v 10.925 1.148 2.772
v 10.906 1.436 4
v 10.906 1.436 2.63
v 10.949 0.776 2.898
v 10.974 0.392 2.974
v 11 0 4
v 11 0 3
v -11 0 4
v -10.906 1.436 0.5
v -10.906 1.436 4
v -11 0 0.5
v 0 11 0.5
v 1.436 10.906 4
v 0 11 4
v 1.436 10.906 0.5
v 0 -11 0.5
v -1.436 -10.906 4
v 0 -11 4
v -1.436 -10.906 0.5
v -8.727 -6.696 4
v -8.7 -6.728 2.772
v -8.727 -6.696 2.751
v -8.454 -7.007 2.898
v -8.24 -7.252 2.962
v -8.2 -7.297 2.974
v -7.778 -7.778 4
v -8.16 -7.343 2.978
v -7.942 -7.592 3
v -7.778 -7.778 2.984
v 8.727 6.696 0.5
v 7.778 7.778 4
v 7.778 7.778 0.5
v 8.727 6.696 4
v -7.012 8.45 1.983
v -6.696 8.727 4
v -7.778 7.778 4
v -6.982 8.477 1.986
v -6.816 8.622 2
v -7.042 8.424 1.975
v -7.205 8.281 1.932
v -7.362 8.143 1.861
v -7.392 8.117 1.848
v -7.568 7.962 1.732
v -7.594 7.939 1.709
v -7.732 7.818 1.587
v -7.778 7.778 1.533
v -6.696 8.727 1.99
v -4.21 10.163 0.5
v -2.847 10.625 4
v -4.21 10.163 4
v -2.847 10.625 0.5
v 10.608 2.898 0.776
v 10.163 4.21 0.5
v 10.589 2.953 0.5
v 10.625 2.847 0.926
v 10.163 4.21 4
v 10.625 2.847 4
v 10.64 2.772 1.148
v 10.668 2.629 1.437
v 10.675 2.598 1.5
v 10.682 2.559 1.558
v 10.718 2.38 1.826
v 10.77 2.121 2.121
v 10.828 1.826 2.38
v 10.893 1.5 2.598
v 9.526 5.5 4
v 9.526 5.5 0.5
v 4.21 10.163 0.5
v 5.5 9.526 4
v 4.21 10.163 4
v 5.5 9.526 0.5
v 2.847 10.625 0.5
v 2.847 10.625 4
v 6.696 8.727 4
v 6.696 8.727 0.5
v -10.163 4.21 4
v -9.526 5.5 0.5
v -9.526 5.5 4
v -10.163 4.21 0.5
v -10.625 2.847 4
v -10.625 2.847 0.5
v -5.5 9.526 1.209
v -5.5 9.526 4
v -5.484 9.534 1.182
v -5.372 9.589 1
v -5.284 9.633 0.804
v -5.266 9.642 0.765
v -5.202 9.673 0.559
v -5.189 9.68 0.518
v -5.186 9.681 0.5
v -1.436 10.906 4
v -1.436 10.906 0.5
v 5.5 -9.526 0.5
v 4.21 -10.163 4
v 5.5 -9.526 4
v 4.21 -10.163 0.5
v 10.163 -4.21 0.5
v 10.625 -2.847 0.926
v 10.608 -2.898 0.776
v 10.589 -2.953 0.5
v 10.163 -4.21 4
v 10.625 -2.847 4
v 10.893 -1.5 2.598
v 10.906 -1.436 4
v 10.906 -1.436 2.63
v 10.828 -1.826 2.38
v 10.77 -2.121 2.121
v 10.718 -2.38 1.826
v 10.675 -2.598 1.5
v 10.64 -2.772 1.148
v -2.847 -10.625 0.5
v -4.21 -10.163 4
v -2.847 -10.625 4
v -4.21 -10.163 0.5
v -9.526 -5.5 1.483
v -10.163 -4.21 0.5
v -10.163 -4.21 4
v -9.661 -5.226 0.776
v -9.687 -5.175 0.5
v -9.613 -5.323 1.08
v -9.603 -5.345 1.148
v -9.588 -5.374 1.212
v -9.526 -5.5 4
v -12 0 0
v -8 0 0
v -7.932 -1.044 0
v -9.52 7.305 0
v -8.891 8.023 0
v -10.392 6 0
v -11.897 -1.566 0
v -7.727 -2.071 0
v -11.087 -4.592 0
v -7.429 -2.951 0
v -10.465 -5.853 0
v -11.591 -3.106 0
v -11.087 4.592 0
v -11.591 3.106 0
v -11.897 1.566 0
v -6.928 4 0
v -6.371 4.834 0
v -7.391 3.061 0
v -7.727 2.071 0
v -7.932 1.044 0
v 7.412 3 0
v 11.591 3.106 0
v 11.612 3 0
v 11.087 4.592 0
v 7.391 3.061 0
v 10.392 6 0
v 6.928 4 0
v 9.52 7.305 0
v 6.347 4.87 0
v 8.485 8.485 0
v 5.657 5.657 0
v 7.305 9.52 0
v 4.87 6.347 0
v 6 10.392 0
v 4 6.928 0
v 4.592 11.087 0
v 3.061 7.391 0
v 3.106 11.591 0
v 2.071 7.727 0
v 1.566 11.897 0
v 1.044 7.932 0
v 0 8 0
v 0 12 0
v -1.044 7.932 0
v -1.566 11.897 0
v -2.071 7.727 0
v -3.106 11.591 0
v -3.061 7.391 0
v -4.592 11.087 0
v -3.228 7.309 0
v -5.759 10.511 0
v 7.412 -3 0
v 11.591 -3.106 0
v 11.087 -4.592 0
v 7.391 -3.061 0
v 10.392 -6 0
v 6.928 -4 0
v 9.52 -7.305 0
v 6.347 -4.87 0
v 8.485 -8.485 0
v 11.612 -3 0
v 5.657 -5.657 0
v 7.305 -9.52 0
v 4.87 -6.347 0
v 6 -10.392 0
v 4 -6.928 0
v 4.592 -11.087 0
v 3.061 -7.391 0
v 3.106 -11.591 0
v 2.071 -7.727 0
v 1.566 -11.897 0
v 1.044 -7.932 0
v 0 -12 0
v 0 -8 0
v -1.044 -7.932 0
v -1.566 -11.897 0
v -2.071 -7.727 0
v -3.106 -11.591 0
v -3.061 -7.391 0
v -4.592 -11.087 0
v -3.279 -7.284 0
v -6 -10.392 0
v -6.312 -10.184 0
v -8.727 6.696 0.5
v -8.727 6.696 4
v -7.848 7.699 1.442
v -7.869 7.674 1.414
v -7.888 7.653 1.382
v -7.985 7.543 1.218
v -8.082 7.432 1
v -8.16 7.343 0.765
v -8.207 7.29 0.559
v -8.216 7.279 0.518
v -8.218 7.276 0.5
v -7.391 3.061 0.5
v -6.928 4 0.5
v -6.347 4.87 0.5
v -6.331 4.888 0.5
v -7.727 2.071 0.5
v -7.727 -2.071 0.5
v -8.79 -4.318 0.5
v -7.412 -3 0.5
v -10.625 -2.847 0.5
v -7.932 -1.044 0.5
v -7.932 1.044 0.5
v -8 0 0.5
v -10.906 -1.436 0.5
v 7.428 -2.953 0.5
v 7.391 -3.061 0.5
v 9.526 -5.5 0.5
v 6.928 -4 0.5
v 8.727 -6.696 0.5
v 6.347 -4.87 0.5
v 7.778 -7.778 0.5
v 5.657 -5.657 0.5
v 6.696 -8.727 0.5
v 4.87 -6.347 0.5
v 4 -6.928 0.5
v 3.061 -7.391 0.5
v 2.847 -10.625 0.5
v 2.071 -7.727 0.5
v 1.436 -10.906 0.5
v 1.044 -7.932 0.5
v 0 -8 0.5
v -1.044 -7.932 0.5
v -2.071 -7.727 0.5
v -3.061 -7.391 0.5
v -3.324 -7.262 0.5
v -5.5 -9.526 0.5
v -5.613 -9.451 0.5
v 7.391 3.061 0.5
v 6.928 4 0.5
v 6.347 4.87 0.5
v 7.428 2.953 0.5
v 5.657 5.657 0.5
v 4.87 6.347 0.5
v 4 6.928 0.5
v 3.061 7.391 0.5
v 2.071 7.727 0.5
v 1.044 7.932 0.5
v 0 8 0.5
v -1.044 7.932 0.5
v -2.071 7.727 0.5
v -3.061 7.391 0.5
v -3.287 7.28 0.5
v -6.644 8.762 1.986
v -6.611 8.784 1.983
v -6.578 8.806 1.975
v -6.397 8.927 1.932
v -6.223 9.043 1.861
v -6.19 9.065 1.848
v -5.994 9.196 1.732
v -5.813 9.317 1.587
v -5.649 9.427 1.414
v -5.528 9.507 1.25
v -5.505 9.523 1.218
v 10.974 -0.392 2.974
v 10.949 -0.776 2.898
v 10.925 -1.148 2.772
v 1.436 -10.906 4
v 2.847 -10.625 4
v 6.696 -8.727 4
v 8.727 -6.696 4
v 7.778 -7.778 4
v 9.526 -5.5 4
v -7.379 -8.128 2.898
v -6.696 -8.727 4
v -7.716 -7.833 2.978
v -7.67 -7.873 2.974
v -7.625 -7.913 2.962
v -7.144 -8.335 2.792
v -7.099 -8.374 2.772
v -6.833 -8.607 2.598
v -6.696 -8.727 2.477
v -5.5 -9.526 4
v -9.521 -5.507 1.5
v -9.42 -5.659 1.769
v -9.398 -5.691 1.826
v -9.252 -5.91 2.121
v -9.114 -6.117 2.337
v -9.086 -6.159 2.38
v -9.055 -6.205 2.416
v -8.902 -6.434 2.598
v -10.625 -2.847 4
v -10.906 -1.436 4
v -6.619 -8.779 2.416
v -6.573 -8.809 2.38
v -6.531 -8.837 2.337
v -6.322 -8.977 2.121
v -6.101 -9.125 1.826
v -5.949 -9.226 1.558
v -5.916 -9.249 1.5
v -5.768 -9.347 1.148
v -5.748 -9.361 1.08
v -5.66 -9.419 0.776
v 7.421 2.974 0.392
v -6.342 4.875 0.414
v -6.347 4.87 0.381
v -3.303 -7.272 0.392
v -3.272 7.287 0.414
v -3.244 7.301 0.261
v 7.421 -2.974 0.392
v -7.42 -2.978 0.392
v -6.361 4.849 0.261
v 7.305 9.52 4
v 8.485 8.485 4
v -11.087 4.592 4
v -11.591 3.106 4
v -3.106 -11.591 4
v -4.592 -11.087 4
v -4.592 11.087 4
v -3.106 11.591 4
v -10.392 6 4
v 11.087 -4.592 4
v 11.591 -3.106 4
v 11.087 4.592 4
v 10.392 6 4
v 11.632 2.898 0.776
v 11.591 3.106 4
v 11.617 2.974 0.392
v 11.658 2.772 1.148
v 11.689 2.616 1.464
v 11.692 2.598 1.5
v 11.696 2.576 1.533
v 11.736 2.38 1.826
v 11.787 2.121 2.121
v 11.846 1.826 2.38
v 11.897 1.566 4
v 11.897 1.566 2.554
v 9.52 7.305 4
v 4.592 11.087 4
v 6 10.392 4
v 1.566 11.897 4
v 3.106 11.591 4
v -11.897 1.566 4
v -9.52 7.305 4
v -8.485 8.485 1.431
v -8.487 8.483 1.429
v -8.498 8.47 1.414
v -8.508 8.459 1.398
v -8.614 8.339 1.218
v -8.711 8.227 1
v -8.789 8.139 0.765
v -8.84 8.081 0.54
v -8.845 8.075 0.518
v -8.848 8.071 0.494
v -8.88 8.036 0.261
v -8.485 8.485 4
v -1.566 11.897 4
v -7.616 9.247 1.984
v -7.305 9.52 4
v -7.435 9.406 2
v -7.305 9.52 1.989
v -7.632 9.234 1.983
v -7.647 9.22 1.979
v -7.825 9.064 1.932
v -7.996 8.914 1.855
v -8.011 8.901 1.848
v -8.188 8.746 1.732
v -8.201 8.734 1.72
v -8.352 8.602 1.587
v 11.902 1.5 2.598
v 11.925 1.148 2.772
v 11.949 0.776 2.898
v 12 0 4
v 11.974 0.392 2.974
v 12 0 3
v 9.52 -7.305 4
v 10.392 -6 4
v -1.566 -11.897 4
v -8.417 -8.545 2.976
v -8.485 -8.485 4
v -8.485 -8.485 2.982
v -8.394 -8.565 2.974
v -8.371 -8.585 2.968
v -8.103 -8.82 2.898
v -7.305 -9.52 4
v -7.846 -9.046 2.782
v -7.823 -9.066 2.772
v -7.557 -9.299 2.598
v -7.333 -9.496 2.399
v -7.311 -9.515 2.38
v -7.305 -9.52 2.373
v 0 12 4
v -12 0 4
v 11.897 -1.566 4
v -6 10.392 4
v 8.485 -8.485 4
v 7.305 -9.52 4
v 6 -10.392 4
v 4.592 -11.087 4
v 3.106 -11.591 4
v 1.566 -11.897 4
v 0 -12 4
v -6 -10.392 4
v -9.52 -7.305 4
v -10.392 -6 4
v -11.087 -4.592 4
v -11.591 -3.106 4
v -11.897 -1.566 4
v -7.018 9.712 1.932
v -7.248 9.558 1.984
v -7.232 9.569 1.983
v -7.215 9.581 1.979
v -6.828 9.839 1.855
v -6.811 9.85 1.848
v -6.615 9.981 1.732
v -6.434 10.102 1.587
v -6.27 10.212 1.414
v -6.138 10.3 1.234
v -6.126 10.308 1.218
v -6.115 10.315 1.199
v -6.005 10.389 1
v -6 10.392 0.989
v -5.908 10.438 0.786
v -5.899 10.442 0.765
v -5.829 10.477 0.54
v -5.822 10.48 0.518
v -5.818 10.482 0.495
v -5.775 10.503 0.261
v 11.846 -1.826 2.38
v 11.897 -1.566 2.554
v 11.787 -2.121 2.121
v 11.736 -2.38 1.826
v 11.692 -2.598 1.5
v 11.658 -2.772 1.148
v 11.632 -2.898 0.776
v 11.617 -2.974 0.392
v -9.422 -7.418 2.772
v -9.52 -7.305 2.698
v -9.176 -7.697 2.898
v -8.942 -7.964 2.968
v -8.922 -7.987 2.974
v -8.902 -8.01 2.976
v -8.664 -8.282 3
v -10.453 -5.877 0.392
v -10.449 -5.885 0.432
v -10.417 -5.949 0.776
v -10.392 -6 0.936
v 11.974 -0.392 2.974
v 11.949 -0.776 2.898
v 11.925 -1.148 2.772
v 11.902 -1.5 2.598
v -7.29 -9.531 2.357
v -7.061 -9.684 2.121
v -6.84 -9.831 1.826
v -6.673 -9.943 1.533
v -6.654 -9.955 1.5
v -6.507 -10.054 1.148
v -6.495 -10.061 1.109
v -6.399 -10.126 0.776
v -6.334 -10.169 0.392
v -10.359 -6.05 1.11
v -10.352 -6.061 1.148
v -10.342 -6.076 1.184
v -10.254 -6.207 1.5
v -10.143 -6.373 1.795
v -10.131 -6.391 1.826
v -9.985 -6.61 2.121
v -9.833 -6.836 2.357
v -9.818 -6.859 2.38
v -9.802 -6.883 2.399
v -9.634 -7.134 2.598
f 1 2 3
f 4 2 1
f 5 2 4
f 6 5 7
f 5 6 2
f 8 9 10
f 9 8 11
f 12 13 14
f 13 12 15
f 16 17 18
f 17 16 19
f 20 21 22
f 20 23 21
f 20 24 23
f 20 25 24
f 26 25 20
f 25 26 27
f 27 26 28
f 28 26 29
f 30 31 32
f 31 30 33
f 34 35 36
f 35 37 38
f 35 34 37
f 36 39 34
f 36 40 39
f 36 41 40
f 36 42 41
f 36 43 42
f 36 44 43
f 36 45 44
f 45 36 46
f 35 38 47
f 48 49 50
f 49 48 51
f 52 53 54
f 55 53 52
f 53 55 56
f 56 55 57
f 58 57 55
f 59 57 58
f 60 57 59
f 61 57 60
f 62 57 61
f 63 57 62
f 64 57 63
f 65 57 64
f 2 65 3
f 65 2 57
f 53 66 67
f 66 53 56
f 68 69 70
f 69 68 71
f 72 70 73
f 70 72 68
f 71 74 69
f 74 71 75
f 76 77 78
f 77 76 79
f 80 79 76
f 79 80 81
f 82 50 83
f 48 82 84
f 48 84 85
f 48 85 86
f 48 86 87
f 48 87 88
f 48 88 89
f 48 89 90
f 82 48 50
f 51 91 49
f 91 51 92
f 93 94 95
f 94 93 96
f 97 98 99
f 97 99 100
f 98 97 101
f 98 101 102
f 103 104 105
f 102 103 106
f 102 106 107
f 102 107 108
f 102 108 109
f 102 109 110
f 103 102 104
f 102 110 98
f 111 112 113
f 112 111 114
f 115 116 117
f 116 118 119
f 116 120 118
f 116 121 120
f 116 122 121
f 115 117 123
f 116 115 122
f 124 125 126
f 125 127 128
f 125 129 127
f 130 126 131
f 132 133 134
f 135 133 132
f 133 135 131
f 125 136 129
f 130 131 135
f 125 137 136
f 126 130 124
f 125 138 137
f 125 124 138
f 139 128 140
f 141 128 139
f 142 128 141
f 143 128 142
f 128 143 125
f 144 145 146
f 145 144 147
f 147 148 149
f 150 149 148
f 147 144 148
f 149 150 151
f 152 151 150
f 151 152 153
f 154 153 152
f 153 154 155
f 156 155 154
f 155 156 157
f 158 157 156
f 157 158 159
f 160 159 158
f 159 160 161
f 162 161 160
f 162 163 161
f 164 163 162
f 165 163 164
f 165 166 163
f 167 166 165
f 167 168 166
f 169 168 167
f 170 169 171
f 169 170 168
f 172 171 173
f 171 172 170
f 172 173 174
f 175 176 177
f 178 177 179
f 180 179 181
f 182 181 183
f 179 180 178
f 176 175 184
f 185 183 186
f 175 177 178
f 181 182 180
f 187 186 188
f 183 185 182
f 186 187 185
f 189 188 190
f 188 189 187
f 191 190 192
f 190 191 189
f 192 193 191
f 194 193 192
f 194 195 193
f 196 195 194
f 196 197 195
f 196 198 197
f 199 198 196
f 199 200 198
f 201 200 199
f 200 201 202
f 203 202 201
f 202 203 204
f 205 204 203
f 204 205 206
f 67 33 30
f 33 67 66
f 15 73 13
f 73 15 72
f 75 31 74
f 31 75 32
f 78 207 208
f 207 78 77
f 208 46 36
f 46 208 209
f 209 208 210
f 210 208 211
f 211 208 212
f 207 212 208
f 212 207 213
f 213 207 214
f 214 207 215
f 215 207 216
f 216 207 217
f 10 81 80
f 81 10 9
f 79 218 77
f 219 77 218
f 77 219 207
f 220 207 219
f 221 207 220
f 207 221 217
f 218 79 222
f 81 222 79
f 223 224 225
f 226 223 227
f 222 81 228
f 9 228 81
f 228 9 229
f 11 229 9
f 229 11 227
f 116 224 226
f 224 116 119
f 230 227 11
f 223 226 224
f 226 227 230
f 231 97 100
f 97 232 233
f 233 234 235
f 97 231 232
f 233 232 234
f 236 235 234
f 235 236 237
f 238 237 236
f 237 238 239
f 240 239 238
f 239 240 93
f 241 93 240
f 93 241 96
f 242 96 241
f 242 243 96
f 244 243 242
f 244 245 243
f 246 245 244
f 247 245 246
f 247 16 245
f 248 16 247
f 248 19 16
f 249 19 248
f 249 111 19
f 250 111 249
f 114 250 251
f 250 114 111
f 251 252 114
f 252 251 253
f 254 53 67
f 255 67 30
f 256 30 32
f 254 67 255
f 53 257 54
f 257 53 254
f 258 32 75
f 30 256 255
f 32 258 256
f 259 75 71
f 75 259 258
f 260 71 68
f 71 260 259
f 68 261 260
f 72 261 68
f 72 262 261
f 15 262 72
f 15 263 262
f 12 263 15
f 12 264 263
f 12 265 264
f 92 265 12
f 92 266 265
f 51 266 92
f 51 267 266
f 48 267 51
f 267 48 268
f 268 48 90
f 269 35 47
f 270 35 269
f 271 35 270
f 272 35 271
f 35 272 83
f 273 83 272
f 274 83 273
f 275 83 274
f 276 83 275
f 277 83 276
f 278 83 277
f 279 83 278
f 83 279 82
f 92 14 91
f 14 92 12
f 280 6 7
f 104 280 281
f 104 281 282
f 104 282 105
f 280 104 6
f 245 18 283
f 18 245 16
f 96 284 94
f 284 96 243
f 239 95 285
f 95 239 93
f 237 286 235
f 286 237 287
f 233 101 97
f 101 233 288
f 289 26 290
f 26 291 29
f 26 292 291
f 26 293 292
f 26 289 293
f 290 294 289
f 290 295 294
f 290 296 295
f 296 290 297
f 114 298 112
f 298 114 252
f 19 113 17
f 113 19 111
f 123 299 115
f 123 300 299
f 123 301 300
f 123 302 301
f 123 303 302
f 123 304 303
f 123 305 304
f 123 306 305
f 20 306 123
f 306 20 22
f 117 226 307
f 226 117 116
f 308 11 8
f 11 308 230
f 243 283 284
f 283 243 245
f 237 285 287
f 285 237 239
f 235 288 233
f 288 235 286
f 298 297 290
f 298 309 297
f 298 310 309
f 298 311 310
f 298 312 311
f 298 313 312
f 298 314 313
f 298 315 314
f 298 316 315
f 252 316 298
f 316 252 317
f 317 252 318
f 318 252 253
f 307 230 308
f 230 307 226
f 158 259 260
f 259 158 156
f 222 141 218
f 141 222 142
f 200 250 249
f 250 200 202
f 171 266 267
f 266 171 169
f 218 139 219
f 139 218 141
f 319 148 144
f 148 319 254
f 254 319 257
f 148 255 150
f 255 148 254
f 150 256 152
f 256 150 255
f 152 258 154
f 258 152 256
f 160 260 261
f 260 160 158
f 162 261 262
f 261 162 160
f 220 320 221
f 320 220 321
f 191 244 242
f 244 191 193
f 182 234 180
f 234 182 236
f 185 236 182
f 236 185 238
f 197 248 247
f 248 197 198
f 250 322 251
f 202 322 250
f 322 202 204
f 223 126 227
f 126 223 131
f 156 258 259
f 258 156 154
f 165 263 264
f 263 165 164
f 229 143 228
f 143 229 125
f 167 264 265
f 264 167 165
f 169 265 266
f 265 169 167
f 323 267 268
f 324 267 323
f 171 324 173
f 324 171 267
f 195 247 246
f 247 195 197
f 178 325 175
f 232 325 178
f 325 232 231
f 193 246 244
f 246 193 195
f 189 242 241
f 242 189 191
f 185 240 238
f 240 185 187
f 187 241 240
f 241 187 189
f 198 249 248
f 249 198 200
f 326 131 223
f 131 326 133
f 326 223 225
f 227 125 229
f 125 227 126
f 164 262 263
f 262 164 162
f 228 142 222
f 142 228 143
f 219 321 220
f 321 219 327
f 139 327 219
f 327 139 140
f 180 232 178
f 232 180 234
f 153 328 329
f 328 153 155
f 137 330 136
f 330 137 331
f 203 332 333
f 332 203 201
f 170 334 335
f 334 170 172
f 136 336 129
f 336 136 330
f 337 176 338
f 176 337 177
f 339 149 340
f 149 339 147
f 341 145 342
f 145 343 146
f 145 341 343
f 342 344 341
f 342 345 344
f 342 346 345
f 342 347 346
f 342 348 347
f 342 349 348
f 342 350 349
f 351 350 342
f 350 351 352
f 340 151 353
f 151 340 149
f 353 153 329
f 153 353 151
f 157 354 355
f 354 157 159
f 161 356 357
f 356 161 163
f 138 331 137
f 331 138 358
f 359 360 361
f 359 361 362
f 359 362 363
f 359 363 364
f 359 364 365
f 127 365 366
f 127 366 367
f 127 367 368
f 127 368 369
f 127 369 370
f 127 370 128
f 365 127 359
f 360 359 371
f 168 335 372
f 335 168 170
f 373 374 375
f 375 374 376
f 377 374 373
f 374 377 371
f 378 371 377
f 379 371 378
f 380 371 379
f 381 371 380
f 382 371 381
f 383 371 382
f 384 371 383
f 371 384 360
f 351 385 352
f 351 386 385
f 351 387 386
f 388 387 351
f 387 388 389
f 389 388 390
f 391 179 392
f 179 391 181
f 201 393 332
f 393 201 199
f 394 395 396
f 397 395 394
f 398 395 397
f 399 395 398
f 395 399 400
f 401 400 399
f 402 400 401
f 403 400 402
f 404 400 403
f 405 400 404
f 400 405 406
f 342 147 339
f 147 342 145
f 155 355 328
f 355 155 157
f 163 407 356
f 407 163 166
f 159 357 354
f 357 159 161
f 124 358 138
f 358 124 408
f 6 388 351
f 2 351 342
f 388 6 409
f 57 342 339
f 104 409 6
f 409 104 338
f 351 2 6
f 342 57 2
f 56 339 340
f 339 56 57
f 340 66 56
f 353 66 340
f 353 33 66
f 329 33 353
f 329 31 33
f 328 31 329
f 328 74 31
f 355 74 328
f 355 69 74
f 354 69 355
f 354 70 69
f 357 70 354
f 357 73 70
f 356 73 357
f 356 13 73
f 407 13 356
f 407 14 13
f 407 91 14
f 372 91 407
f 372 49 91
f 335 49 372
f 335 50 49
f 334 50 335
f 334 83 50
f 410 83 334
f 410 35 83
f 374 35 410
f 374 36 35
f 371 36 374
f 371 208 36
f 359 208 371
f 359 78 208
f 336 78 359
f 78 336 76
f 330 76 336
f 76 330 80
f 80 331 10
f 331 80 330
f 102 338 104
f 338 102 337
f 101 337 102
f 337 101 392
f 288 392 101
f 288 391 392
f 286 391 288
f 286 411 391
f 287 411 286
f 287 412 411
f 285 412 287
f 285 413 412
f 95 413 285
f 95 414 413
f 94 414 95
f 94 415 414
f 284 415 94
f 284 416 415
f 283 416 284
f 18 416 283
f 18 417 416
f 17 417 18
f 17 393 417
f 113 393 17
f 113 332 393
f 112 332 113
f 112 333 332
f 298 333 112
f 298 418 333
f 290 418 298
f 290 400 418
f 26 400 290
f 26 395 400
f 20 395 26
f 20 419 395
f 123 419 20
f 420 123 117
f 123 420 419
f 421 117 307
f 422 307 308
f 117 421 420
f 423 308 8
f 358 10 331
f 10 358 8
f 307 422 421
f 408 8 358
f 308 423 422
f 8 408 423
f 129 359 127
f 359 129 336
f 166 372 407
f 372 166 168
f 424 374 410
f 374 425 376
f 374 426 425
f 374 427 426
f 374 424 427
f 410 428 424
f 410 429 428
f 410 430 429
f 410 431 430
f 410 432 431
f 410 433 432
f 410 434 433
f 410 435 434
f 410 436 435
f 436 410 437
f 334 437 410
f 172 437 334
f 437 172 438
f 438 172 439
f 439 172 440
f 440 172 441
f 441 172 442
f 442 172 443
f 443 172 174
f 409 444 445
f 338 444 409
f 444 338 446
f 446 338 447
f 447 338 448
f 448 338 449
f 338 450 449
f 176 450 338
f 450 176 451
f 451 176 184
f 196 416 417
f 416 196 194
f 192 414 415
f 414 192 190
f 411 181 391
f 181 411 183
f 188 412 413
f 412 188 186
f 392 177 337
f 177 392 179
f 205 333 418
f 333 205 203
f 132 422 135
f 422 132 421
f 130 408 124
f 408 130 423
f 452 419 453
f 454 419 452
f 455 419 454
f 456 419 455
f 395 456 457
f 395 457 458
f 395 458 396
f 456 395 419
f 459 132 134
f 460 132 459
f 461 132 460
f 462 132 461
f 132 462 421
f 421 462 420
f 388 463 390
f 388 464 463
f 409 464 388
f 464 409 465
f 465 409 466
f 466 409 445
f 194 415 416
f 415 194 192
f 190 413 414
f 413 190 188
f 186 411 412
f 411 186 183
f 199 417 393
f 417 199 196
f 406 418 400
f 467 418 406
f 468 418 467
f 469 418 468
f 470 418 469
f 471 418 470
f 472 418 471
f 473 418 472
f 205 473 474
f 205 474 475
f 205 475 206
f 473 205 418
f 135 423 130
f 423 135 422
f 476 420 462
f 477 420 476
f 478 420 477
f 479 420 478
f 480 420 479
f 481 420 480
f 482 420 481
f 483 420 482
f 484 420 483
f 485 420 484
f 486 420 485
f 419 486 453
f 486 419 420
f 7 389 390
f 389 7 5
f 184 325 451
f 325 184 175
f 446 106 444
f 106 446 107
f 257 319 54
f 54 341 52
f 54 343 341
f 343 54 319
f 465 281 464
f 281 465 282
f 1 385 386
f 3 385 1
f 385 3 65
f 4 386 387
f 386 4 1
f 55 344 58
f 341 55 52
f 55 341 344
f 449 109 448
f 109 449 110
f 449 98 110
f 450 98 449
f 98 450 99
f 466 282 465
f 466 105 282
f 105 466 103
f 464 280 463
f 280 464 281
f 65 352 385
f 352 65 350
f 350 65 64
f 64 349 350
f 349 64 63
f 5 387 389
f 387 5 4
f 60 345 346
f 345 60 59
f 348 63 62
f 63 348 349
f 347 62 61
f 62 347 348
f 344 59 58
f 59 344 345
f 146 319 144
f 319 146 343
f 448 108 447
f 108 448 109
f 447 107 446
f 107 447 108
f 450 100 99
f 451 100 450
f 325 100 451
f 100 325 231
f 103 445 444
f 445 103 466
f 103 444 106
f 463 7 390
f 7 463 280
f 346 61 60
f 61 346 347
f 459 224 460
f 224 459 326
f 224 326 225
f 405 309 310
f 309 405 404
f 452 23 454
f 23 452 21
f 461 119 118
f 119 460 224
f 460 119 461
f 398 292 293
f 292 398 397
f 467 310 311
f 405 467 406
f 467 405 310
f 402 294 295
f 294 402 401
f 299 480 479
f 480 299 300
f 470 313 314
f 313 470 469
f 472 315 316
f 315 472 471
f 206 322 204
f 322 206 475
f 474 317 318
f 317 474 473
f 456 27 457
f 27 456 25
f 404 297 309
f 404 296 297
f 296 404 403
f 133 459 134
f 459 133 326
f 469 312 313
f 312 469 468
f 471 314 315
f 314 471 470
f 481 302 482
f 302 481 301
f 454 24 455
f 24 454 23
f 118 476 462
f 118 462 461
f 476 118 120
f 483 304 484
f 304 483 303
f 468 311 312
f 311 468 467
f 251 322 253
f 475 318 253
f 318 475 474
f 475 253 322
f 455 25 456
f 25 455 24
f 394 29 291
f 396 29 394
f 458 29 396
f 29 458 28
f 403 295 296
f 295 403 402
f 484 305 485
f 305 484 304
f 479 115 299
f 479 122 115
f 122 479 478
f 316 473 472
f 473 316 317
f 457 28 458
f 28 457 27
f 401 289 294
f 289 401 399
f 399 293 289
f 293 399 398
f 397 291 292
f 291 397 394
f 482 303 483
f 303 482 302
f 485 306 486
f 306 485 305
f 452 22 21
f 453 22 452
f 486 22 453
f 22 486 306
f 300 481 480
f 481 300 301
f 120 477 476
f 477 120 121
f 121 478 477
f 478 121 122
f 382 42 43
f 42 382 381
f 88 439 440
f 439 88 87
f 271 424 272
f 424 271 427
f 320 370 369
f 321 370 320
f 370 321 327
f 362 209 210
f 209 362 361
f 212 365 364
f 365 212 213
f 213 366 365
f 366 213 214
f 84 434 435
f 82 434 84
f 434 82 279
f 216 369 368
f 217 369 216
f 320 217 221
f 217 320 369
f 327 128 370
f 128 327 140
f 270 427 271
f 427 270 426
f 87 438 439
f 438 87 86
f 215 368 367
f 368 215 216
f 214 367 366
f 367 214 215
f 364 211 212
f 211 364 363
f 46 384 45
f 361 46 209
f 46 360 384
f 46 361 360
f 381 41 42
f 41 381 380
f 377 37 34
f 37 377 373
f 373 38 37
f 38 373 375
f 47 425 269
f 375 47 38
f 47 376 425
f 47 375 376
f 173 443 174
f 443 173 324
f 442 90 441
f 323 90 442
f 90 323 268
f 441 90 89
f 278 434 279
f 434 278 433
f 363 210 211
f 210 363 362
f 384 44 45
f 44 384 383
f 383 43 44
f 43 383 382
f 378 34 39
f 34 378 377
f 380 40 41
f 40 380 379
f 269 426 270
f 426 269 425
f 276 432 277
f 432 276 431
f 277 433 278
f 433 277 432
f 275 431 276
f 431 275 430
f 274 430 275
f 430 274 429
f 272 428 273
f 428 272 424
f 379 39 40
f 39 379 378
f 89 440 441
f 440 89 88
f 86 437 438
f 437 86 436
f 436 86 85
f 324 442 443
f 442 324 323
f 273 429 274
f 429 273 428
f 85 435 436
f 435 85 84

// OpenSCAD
// file: ../build_environments.scad
// build_environments.scad: modules to build level sections
//

module pool(diameter=10.0, wall_height=2.0, step_width=3.0, connections=[])
{
    difference() {
        union() {
        difference() {
            cylinder(h=0.5,r1=diameter+step_width,r2=diameter+step_width,$fn=48);
            translate([0,0,-0.1])
                cylinder(h=0.7,r1=diameter,r2=diameter,$fn=48);
        }
        difference() {
            cylinder(h=wall_height,r1=diameter+step_width+1.0,r2=diameter+step_width+1.0,$fn=48);
            translate([0,0,-0.1])
                cylinder(h=wall_height+0.2,r1=diameter+step_width,r2=diameter+step_width,$fn=48);
        }
        }
    
        for (c = connections)
        {
            rotate([0,90,0]) {
                angle = atan2(c[1],c[0]);
                rotate([-angle,0,0]) {
                    cylinder(h=diameter+5.0,r1=c[2],r2=c[2],$fn=48);
                }
            }
        }
    }
}

module straight(length=10.0, width=2.0, dy1=0.0, dy2=0.0, dz=0.0)
{
    dims = [0, 0, 0, 0, 0, (dz/length)];
    matrix = [
        [ 1, dims[0], dims[1], 0 ],
        [ dims[2], 1, dims[4], 0 ],
        [ dims[5], dims[3], 1, 0 ],
        [ 0, 0, 0, 1 ]
    ];
    multmatrix(matrix)
    difference() {
        translate([dy1,0,0])
        union() {
            rotate([0,90,0]) {
                difference() {
                    cylinder(h=(length-dy1-dy2),r1=width+1.0,r2=width+1.0,$fn=24);
                    translate([0,0,-0.1])
                        cylinder(h=(length-dy1-dy2+0.2),r1=width,r2=width,$fn=24);
                }
                difference() {
                    cylinder(h=1.0,r1=width+2.0,r2=width+2.0,$fn=24);
                    translate([0,0,-0.1])
                        cylinder(h=1.2,r1=width,r2=width,$fn=24);
                }
                translate([0,0,(length-dy1-dy2)-1.0]) {
                    difference() {
                        cylinder(h=1.0,r1=width+2.0,r2=width+2.0,$fn=24);
                        translate([0,0,-0.1])
                            cylinder(h=1.2,r1=width,r2=width,$fn=24);
                    }
                }
            }
        }
        translate([0,0,-(2*width+4.0)/2])
            cube([3*length,3*length,2*width+4.0],center=true);
    }
}

module curve(p0=[0,0], center=[0,0], dir=1, angle=0.0, width=2.0)
{
    radius = sqrt((p0[0]-center[0])*(p0[0]-center[0]) + (p0[1]-center[1])*(p0[1]-center[1]));
    if (dir == 0) {
        difference() {
            rotate([0,0,-90])
            difference() {
                rotate_extrude(angle = angle, convexity = 10, $fn=32)
                    translate([radius, 0, 0])
                        circle(r = width+1.0,$fn=24);
                rotate([0,0,-1.0])
                    rotate_extrude(angle = angle+2.0, convexity = 10, $fn=32)
                        translate([radius, 0, 0])
                            circle(r = width,$fn=24);
            }
            translate([0,0,-(2*width+4.0)/2])
                cube([5*radius,5*radius,2*width+4.0],center=true);
        }
    }
    else {
        difference() {
            rotate([0,0,90])
            difference() {
                rotate_extrude(angle = -angle, convexity = 10, $fn=32)
                    translate([radius, 0, 0])
                        circle(r = width+1.0,$fn=24);
                rotate([0,0,1.0])
                    rotate_extrude(angle = -angle-2.0, convexity = 10, $fn=32)
                        translate([radius, 0, 0])
                            circle(r = width,$fn=24);
            }
            translate([0,0,-(2*width+4.0)/2])
                cube([5*radius,5*radius,2*width+4.0],center=true);
        }
    }

}

// test pool
//pool(diameter=12.0000, wall_height=3.0000, step_width=3.0000, connections=[[0.0000,-26.0000,2.0000], [23.6074,0.0000,2.0000]]);

// test straight, slope
//straight(length=26.0000, width=2.0000, dy1=11.8322, dy2=6.7082, dz=0.0000);
//straight(length=29.1549, width=12.0000, dy1=0.0000, dy2=0.0000, dz=-15.0000);

// test curve
//curve(p0=[23.6074, 0.0000], center=[23.6074, 5.0000], dir=0, angle=60.1011, width=2.0000);
//curve(p0=[33.6426, 12.4219], center=[37.9771, 9.9295], dir=1, angle=120.4627, width=2.0000);
// main file
use <../build_environments.scad>;
pool(diameter=8.0000, wall_height=4.0000, step_width=3.0000, connections=[[10.0000,0.0000,3.0000], [-11.9408,-11.4140,3.0000], [-7.2255,9.1408,2.0000]]);
